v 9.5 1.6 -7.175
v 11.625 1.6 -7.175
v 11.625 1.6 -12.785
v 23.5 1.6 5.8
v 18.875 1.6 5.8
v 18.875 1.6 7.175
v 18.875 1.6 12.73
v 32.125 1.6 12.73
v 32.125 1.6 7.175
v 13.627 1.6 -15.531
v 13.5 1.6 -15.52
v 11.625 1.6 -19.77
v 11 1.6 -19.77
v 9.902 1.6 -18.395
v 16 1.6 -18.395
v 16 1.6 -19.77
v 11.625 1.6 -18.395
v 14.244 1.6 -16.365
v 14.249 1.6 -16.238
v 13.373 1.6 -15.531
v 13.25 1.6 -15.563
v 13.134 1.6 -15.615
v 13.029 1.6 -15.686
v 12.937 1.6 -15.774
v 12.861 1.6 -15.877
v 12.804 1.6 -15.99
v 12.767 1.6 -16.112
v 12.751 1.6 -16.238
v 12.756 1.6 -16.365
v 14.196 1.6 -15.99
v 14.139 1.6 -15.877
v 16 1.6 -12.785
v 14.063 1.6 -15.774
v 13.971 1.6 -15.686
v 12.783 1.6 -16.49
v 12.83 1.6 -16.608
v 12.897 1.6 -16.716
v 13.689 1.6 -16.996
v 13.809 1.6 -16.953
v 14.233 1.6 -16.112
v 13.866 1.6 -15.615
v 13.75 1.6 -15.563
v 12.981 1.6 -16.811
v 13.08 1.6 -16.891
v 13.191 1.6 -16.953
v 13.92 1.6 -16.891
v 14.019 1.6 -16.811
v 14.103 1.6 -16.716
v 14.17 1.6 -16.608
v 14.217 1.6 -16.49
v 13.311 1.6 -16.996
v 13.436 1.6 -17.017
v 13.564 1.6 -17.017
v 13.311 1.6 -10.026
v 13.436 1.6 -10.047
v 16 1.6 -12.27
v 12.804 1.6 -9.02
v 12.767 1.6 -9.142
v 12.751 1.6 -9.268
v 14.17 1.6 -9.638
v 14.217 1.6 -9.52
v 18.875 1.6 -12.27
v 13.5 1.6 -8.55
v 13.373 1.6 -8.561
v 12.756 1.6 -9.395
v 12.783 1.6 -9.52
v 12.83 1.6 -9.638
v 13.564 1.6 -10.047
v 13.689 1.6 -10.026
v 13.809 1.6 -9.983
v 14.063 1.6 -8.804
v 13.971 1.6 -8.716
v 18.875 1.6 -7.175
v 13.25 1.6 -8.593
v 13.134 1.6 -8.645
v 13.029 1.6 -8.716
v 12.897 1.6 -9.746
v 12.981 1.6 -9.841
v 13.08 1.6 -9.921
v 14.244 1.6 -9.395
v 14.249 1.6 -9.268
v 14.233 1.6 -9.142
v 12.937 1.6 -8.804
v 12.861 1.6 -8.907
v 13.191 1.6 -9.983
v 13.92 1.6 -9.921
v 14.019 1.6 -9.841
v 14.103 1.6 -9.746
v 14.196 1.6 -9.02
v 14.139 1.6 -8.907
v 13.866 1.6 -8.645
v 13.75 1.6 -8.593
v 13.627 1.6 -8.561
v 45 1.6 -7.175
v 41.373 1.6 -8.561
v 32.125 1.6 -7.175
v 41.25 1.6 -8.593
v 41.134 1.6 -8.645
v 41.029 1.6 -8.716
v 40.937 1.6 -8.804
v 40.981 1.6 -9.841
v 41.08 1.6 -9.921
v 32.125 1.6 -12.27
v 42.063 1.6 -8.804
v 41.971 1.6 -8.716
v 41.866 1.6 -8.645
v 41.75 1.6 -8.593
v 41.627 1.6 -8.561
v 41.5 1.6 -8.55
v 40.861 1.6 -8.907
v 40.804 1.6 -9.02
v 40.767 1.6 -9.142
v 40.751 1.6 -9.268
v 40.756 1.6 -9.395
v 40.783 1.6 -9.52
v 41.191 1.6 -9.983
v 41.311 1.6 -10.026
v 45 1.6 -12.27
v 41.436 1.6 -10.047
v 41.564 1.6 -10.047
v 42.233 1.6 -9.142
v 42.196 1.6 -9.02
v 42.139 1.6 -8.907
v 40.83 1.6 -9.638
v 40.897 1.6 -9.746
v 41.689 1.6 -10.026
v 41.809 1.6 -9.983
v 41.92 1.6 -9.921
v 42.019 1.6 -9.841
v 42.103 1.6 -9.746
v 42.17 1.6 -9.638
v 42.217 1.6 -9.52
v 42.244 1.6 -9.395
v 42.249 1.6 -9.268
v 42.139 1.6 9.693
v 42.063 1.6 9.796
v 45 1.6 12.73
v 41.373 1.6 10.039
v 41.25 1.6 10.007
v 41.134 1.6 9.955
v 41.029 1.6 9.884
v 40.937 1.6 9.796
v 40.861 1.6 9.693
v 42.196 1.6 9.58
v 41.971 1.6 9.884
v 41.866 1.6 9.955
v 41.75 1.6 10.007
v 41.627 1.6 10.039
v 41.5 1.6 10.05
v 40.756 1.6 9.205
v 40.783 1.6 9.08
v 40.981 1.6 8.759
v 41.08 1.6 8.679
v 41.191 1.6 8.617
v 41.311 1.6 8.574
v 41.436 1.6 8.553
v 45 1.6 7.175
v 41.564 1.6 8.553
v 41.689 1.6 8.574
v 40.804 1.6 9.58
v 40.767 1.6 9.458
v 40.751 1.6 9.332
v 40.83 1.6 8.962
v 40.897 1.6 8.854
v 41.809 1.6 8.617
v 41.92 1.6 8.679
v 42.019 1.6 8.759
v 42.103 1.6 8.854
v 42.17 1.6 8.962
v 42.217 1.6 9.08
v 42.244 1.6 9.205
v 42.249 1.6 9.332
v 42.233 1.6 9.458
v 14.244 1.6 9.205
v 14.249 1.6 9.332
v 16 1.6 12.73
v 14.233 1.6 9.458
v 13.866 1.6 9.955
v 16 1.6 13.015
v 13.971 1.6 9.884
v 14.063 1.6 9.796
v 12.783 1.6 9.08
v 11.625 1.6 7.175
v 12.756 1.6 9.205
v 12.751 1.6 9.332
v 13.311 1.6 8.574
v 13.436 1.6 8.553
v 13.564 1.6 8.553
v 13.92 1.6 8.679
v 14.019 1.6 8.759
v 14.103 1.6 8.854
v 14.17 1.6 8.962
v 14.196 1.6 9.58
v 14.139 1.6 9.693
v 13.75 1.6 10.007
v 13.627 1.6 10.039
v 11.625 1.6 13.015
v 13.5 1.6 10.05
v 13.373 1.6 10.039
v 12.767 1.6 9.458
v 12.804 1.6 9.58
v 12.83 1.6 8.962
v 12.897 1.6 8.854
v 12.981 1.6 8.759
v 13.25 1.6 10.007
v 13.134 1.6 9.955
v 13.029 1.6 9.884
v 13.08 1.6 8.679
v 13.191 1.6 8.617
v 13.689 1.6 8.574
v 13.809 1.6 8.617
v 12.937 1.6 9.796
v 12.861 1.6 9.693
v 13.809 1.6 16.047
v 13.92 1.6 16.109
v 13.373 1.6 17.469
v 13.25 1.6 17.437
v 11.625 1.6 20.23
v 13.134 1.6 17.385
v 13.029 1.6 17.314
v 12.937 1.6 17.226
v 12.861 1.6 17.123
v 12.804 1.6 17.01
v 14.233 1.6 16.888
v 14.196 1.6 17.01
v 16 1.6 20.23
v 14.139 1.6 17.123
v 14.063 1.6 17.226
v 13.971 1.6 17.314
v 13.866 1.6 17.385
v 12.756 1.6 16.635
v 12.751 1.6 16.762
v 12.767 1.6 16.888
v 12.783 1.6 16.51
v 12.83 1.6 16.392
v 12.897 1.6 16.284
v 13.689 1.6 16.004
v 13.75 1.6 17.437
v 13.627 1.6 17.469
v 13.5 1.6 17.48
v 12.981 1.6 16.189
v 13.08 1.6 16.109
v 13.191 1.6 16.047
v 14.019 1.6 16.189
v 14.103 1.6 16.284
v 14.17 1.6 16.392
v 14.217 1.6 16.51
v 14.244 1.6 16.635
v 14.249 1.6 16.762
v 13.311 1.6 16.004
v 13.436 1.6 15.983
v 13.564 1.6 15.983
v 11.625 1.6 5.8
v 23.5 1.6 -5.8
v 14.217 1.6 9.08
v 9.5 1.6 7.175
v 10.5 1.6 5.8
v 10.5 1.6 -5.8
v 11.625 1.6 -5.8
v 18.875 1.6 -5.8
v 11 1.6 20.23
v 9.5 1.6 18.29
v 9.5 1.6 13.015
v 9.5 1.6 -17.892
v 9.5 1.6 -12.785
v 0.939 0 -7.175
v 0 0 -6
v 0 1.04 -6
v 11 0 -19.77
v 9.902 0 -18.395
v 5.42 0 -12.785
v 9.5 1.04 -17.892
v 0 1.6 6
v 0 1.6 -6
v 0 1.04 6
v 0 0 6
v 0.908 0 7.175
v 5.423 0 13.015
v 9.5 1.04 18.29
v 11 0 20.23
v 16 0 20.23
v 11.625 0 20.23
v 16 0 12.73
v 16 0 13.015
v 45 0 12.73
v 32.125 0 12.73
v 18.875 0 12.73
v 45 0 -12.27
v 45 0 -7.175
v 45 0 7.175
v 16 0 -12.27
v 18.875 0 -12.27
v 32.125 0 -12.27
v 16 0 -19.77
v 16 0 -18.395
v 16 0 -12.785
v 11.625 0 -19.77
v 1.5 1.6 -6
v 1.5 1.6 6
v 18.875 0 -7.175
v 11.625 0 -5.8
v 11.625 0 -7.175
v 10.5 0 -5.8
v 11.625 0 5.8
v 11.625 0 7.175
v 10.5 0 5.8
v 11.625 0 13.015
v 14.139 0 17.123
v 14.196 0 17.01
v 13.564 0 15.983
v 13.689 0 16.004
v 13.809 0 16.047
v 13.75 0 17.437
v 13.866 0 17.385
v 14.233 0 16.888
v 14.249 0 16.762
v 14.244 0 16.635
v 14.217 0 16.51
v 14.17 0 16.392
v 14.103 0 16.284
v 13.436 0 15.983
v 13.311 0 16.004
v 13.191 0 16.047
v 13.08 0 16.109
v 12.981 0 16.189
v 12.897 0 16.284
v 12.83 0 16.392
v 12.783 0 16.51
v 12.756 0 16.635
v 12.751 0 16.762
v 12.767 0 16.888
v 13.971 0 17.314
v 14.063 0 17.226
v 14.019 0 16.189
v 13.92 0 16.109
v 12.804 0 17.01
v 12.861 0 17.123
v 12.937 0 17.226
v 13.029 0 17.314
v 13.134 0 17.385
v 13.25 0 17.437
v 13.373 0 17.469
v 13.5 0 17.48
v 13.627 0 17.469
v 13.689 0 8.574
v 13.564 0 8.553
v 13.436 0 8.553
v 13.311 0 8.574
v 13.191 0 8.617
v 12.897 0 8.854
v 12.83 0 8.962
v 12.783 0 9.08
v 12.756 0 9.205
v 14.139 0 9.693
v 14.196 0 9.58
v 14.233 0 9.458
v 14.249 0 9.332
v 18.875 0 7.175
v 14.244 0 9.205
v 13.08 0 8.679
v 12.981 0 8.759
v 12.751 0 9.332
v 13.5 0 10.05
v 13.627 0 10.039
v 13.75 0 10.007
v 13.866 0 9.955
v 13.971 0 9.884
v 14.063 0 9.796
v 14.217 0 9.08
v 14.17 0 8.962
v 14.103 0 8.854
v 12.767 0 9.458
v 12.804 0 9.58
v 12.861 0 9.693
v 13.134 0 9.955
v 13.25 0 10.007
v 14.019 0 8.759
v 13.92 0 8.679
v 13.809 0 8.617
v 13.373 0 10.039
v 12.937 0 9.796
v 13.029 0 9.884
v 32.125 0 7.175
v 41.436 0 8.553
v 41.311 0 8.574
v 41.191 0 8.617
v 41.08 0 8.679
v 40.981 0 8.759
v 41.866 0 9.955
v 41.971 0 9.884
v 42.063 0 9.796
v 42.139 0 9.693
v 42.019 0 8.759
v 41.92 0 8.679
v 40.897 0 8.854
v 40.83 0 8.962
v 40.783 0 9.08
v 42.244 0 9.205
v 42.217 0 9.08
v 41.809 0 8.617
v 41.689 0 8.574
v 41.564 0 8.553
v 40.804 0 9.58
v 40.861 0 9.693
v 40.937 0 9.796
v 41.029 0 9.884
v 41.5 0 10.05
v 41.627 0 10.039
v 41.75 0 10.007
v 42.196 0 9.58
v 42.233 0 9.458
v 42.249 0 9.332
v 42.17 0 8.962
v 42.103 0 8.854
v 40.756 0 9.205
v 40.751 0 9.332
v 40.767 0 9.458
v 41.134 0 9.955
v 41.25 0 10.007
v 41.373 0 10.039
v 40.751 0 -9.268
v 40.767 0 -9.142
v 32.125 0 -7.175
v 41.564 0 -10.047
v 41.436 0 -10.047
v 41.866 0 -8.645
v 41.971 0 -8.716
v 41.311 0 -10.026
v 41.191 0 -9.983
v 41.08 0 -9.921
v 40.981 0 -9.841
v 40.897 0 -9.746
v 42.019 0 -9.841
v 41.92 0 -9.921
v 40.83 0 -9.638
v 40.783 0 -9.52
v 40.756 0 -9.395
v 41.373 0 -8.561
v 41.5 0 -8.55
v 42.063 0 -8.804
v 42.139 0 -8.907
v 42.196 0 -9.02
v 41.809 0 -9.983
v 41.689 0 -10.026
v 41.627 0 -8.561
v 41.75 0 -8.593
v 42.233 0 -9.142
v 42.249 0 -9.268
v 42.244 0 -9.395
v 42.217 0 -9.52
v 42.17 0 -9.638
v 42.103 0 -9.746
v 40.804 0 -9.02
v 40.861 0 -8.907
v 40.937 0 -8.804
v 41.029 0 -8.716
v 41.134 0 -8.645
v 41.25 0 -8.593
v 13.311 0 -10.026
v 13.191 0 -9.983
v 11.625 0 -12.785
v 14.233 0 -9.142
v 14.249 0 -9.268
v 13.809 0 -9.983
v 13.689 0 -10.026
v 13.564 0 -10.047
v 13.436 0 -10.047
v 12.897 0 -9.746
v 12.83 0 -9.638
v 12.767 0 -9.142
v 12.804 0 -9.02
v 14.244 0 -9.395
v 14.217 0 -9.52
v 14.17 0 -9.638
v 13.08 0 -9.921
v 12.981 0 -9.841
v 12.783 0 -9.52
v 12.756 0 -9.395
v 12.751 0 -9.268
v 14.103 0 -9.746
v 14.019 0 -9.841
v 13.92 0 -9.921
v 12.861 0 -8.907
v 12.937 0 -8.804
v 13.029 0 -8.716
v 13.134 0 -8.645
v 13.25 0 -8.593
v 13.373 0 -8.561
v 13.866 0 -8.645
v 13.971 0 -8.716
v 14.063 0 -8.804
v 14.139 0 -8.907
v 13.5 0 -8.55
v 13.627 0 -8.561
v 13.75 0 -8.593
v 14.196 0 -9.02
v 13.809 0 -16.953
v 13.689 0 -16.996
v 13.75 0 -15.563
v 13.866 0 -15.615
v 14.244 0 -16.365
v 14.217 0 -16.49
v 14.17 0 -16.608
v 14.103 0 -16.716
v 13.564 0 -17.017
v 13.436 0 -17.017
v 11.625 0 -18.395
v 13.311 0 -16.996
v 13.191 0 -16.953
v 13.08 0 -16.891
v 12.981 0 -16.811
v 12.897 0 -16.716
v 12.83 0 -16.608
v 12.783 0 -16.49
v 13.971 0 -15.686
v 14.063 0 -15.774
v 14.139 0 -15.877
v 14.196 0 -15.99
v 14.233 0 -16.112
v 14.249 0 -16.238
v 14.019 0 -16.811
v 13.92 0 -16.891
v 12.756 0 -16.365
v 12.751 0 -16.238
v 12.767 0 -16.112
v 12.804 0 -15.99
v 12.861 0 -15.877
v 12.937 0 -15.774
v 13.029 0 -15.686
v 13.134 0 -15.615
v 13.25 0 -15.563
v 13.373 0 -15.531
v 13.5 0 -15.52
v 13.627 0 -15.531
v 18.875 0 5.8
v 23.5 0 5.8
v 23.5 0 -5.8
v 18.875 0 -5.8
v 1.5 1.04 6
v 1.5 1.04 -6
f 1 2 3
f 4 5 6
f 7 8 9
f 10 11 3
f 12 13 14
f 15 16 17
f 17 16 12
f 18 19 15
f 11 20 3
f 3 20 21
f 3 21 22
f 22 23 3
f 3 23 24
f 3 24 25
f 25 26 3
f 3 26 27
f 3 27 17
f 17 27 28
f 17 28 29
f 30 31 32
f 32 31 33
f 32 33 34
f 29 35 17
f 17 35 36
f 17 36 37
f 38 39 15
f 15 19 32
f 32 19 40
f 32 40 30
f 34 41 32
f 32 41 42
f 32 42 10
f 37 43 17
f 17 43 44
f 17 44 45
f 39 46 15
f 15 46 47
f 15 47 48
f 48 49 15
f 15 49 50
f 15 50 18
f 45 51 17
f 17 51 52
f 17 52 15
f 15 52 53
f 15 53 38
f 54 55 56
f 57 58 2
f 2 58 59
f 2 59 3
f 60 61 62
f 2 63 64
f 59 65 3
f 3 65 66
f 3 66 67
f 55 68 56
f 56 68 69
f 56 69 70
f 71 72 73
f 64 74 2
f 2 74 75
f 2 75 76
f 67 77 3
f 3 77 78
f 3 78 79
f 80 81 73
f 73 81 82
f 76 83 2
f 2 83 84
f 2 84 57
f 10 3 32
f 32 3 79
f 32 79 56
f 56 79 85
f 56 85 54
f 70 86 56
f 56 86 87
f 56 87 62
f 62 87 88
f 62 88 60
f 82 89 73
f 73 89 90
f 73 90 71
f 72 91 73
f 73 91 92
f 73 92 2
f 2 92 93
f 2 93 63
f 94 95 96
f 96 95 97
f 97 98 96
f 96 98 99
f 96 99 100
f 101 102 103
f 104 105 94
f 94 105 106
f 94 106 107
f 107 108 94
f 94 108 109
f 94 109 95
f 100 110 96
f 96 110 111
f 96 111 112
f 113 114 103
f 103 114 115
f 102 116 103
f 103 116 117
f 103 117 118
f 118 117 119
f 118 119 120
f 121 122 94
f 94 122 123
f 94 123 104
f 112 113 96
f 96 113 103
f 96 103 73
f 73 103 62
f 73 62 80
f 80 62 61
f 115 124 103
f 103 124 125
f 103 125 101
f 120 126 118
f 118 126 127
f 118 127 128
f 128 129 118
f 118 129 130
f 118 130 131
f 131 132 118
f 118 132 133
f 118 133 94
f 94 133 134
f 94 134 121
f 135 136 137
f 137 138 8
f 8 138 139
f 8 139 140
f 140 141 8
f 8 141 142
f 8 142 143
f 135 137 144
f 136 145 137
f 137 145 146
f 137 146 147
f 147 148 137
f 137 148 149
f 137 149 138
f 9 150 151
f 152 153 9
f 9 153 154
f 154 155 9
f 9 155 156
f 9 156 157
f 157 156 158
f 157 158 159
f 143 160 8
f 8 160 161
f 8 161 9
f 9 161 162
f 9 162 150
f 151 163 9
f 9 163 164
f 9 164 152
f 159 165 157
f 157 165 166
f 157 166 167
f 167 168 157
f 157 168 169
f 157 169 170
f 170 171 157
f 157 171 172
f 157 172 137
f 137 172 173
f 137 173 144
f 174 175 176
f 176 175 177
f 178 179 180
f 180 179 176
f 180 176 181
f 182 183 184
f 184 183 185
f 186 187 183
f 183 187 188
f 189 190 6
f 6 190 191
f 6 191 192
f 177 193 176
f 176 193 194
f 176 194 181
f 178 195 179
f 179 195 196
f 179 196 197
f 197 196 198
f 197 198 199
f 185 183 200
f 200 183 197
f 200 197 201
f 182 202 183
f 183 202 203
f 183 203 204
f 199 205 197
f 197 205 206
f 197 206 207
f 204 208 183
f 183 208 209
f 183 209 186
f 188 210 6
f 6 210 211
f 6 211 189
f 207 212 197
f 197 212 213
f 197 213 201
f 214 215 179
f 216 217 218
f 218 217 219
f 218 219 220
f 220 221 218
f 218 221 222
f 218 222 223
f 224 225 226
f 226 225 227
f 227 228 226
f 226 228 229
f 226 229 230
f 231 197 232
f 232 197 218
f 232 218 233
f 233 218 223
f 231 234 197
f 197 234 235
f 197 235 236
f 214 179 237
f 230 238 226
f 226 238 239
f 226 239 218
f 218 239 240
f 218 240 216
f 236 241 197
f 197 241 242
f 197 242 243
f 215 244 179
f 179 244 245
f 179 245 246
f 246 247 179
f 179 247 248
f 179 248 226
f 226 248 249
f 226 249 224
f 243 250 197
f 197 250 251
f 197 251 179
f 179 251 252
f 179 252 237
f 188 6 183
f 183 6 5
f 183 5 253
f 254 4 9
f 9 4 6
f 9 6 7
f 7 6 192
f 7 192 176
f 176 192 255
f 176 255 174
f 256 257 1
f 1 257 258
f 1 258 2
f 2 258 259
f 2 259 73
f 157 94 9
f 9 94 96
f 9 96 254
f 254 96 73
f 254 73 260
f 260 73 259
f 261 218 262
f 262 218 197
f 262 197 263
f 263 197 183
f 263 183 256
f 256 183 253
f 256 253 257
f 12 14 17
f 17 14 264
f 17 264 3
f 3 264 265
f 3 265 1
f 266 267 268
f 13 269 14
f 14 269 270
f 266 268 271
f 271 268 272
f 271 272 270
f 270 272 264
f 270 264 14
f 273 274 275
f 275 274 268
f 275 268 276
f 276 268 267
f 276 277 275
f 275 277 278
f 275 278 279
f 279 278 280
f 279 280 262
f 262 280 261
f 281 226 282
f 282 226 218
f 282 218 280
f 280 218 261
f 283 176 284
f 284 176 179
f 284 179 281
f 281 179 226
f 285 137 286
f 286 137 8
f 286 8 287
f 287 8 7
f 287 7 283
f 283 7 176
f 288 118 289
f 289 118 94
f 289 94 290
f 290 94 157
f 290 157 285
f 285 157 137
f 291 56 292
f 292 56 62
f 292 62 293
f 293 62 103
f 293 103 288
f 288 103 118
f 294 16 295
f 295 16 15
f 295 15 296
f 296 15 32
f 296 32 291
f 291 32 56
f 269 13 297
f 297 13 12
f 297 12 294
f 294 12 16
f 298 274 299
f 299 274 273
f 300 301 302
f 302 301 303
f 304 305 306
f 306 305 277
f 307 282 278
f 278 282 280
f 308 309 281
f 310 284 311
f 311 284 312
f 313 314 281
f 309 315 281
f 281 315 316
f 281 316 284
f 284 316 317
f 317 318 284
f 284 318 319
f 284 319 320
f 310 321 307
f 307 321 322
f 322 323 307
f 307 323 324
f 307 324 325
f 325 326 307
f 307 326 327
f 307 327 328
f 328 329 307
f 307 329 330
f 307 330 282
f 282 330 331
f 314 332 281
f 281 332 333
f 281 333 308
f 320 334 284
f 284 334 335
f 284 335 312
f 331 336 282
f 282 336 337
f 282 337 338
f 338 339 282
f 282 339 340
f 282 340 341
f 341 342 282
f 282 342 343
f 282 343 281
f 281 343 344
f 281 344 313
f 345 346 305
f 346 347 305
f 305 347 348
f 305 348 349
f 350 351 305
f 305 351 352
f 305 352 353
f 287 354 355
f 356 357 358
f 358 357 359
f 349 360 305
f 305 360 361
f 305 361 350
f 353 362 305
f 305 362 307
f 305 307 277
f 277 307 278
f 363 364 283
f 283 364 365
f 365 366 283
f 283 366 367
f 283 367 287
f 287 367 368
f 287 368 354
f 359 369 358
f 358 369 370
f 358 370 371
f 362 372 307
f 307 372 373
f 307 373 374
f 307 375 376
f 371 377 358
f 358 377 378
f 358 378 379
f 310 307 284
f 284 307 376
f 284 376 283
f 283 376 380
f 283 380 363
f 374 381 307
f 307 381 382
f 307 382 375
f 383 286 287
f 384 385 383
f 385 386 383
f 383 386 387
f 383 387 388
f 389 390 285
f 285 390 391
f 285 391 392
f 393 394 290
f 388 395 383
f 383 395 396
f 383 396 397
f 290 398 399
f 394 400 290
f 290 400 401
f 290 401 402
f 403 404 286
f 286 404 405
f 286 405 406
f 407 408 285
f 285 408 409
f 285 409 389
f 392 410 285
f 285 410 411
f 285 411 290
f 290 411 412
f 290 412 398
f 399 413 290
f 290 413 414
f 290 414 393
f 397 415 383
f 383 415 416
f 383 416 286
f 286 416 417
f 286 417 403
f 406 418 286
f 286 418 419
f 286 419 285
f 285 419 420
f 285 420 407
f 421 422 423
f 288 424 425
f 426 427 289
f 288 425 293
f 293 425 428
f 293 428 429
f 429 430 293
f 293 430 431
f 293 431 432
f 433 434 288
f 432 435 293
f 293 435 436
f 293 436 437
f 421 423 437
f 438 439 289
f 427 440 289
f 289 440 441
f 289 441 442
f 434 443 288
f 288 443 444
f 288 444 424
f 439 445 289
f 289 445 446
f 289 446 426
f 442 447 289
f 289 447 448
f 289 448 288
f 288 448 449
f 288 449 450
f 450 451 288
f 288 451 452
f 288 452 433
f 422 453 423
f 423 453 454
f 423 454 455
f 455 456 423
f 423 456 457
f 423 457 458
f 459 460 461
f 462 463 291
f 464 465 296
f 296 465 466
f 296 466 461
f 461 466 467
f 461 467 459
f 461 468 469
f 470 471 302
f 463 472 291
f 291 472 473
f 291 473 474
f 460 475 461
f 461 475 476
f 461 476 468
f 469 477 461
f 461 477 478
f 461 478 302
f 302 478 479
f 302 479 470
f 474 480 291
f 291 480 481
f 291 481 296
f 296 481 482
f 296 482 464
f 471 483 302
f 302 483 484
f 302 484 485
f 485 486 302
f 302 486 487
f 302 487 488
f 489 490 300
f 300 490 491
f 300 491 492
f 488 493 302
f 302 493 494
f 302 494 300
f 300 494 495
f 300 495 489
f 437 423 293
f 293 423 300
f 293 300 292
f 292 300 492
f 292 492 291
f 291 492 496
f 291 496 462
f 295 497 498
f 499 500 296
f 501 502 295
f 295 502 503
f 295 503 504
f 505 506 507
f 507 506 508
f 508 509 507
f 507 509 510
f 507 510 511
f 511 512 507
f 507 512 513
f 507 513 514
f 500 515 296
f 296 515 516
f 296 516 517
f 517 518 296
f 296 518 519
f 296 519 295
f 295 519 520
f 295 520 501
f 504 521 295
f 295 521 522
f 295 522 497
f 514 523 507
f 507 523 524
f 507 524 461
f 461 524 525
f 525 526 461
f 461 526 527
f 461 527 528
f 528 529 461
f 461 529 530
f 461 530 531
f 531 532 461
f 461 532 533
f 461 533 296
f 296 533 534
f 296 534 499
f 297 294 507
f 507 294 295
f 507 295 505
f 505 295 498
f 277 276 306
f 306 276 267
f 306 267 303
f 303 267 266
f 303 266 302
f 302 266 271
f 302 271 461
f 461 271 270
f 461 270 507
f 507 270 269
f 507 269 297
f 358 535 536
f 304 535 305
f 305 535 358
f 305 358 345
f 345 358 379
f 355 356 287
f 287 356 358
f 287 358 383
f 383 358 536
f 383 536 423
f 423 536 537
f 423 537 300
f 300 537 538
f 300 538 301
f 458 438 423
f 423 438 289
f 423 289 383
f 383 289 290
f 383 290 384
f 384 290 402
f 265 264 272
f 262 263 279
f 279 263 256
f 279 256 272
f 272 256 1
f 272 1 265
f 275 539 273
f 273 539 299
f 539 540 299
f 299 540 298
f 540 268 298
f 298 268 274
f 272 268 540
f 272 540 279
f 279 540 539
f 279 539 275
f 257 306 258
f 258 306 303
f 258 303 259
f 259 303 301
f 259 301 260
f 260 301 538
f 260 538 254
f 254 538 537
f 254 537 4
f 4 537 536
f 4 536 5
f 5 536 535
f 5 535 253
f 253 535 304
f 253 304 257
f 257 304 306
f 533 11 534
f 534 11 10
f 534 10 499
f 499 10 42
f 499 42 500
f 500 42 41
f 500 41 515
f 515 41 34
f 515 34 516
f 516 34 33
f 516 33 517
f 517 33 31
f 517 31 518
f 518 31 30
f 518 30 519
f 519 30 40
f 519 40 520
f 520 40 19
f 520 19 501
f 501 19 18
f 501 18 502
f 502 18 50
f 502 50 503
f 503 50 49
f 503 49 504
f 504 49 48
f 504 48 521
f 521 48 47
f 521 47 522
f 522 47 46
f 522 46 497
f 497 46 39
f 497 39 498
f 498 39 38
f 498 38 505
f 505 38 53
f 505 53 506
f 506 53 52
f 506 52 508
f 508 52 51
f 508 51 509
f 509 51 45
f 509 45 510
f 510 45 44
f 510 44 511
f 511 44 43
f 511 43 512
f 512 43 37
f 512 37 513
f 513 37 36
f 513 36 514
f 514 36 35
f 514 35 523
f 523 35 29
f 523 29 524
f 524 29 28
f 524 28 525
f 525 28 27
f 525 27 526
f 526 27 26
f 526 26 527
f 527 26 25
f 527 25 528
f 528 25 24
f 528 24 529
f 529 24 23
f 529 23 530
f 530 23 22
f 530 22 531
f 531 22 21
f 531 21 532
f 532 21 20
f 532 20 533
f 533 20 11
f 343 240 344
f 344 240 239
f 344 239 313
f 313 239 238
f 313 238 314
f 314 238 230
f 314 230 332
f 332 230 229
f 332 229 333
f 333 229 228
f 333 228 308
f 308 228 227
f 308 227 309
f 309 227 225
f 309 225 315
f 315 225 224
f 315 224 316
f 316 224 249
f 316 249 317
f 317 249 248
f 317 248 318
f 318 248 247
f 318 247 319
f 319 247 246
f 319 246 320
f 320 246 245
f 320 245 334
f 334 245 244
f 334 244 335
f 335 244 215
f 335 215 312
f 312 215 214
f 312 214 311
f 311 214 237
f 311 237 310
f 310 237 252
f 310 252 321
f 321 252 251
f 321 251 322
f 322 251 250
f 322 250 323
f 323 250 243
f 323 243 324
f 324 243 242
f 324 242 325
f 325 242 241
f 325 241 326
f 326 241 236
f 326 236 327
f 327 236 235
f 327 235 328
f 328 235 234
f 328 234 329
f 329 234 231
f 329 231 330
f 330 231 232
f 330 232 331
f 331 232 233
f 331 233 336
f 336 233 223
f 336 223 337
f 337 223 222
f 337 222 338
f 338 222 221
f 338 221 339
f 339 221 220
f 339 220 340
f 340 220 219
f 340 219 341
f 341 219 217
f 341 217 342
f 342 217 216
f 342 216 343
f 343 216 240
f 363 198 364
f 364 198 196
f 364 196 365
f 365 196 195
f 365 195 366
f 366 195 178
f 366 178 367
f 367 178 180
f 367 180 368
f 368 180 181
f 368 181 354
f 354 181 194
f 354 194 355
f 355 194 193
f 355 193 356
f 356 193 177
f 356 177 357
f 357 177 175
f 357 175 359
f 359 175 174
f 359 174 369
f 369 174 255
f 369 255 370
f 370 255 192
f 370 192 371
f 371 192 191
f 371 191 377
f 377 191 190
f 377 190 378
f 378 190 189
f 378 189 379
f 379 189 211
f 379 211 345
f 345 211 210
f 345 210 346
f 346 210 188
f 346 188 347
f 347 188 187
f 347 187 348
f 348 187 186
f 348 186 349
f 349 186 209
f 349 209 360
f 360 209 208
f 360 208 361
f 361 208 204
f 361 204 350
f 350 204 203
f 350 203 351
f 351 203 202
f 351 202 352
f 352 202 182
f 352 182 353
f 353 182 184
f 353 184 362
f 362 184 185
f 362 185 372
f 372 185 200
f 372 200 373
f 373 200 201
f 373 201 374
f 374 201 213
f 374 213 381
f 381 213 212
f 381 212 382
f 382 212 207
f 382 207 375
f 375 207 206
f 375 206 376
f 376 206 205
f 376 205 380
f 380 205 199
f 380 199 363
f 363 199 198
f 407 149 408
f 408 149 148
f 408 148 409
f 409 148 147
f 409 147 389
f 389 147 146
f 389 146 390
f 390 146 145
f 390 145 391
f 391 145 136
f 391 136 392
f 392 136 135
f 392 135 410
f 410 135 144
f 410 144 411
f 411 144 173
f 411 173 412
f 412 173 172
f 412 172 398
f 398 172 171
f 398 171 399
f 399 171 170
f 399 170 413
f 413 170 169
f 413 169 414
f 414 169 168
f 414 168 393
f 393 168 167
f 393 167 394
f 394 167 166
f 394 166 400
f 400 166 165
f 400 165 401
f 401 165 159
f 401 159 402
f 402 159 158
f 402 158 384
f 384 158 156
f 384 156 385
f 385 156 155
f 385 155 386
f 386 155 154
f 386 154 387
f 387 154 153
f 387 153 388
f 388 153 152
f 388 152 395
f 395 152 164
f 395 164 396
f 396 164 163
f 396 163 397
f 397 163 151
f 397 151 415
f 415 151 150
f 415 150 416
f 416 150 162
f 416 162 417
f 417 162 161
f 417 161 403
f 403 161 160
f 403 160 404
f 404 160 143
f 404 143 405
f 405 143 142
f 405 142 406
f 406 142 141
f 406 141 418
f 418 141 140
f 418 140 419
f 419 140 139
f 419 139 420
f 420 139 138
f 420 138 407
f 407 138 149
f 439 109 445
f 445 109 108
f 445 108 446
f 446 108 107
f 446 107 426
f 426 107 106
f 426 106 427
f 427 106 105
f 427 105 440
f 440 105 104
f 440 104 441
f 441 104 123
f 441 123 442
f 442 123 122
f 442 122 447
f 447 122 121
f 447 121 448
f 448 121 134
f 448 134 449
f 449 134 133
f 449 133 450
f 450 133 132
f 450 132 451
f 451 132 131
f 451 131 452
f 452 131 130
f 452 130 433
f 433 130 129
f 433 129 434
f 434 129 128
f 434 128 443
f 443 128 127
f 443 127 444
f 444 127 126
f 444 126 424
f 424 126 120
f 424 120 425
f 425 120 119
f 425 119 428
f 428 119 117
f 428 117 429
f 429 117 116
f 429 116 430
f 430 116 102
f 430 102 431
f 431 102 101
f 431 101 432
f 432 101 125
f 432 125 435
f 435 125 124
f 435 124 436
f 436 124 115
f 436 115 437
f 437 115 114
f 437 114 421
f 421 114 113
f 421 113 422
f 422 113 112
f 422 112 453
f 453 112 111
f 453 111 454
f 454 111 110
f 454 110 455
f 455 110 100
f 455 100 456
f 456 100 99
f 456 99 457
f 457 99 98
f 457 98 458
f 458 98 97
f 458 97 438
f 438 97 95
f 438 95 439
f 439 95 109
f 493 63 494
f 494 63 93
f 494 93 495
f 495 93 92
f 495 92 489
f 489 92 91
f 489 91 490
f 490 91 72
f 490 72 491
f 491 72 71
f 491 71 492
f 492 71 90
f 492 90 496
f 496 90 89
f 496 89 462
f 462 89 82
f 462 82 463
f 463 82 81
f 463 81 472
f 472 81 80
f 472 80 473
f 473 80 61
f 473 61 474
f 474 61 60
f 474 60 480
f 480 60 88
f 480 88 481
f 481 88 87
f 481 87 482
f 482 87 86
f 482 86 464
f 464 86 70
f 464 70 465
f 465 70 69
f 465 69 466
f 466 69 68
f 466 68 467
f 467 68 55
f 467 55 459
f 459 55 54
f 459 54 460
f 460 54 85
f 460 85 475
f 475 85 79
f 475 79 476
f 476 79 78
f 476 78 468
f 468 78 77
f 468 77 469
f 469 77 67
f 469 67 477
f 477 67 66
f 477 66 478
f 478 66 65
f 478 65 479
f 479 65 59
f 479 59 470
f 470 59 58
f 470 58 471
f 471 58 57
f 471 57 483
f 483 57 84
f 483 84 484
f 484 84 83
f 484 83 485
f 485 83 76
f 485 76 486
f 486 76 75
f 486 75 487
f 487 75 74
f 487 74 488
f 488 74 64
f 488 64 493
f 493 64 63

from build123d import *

# Parameters (mm, degrees)
BOSS_EXTRUDE1_DEPTH = 1.6
CUT_EXTRUDE1_DEPTH  = 0.56
SKETCH3_W           = 13
SKETCH3_H           = 11.6
CUT_EXTRUDE2_DEPTH  = 2
SKETCH4_R           = 0.75
CUT_EXTRUDE3_DEPTH  = 2


with BuildPart() as part:
    # Sketch1 → Boss-Extrude1 (new body)
    with BuildSketch(Plane(origin=(0, 0, 0), x_dir=(1, 0, 0), z_dir=(0, 1, 0))):
        Polygon((0, 6), (0, -6), (11, -20.23), (16, -20.23), (16, -12.73), (45, -12.73), (45, 12.27), (16, 12.27), (16, 19.77), (11, 19.77), align=None)
    extrude(amount=BOSS_EXTRUDE1_DEPTH)

    # Sketch2 → Cut-Extrude1 (cut)
    with BuildSketch(Plane(origin=(0, 1.6, 0), x_dir=(1, 0, 0), z_dir=(0, 1, 0))):
        Polygon((0, -6), (9.5, -18.289545455), (9.5, 17.892272727), (0, 6), (1.5, 6), (1.5, -6), align=None)
    extrude(amount=-CUT_EXTRUDE1_DEPTH, mode=Mode.SUBTRACT)

    # Sketch3 → Cut-Extrude2 (cut)
    with BuildSketch(Plane(origin=(0, 1.6, 0), x_dir=(1, 0, 0), z_dir=(0, 1, 0))):
        with Locations((17, 0)):
            Rectangle(SKETCH3_W, SKETCH3_H)
    extrude(amount=-CUT_EXTRUDE2_DEPTH, mode=Mode.SUBTRACT)

    # Sketch4 → Cut-Extrude3 (cut)
    with BuildSketch(Plane(origin=(0, 1.6, 0), x_dir=(1, 0, 0), z_dir=(0, 1, 0))):
        with Locations(Location((13.5, 16.27, 0), (0, 0, 270))):
            Circle(SKETCH4_R)
        with Locations(Location((13.5, 9.3, 0), (0, 0, 270))):
            Circle(SKETCH4_R)
        with Locations(Location((41.5, 9.3, 0), (0, 0, 270))):
            Circle(SKETCH4_R)
        with Locations(Location((41.5, -9.3, 0), (0, 0, 270))):
            Circle(SKETCH4_R)
        with Locations(Location((13.5, -9.3, 0), (0, 0, 270))):
            Circle(SKETCH4_R)
        with Locations(Location((13.5, -16.73, 0), (0, 0, 270))):
            Circle(SKETCH4_R)
    extrude(amount=-CUT_EXTRUDE3_DEPTH, mode=Mode.SUBTRACT)


solid = part.part
